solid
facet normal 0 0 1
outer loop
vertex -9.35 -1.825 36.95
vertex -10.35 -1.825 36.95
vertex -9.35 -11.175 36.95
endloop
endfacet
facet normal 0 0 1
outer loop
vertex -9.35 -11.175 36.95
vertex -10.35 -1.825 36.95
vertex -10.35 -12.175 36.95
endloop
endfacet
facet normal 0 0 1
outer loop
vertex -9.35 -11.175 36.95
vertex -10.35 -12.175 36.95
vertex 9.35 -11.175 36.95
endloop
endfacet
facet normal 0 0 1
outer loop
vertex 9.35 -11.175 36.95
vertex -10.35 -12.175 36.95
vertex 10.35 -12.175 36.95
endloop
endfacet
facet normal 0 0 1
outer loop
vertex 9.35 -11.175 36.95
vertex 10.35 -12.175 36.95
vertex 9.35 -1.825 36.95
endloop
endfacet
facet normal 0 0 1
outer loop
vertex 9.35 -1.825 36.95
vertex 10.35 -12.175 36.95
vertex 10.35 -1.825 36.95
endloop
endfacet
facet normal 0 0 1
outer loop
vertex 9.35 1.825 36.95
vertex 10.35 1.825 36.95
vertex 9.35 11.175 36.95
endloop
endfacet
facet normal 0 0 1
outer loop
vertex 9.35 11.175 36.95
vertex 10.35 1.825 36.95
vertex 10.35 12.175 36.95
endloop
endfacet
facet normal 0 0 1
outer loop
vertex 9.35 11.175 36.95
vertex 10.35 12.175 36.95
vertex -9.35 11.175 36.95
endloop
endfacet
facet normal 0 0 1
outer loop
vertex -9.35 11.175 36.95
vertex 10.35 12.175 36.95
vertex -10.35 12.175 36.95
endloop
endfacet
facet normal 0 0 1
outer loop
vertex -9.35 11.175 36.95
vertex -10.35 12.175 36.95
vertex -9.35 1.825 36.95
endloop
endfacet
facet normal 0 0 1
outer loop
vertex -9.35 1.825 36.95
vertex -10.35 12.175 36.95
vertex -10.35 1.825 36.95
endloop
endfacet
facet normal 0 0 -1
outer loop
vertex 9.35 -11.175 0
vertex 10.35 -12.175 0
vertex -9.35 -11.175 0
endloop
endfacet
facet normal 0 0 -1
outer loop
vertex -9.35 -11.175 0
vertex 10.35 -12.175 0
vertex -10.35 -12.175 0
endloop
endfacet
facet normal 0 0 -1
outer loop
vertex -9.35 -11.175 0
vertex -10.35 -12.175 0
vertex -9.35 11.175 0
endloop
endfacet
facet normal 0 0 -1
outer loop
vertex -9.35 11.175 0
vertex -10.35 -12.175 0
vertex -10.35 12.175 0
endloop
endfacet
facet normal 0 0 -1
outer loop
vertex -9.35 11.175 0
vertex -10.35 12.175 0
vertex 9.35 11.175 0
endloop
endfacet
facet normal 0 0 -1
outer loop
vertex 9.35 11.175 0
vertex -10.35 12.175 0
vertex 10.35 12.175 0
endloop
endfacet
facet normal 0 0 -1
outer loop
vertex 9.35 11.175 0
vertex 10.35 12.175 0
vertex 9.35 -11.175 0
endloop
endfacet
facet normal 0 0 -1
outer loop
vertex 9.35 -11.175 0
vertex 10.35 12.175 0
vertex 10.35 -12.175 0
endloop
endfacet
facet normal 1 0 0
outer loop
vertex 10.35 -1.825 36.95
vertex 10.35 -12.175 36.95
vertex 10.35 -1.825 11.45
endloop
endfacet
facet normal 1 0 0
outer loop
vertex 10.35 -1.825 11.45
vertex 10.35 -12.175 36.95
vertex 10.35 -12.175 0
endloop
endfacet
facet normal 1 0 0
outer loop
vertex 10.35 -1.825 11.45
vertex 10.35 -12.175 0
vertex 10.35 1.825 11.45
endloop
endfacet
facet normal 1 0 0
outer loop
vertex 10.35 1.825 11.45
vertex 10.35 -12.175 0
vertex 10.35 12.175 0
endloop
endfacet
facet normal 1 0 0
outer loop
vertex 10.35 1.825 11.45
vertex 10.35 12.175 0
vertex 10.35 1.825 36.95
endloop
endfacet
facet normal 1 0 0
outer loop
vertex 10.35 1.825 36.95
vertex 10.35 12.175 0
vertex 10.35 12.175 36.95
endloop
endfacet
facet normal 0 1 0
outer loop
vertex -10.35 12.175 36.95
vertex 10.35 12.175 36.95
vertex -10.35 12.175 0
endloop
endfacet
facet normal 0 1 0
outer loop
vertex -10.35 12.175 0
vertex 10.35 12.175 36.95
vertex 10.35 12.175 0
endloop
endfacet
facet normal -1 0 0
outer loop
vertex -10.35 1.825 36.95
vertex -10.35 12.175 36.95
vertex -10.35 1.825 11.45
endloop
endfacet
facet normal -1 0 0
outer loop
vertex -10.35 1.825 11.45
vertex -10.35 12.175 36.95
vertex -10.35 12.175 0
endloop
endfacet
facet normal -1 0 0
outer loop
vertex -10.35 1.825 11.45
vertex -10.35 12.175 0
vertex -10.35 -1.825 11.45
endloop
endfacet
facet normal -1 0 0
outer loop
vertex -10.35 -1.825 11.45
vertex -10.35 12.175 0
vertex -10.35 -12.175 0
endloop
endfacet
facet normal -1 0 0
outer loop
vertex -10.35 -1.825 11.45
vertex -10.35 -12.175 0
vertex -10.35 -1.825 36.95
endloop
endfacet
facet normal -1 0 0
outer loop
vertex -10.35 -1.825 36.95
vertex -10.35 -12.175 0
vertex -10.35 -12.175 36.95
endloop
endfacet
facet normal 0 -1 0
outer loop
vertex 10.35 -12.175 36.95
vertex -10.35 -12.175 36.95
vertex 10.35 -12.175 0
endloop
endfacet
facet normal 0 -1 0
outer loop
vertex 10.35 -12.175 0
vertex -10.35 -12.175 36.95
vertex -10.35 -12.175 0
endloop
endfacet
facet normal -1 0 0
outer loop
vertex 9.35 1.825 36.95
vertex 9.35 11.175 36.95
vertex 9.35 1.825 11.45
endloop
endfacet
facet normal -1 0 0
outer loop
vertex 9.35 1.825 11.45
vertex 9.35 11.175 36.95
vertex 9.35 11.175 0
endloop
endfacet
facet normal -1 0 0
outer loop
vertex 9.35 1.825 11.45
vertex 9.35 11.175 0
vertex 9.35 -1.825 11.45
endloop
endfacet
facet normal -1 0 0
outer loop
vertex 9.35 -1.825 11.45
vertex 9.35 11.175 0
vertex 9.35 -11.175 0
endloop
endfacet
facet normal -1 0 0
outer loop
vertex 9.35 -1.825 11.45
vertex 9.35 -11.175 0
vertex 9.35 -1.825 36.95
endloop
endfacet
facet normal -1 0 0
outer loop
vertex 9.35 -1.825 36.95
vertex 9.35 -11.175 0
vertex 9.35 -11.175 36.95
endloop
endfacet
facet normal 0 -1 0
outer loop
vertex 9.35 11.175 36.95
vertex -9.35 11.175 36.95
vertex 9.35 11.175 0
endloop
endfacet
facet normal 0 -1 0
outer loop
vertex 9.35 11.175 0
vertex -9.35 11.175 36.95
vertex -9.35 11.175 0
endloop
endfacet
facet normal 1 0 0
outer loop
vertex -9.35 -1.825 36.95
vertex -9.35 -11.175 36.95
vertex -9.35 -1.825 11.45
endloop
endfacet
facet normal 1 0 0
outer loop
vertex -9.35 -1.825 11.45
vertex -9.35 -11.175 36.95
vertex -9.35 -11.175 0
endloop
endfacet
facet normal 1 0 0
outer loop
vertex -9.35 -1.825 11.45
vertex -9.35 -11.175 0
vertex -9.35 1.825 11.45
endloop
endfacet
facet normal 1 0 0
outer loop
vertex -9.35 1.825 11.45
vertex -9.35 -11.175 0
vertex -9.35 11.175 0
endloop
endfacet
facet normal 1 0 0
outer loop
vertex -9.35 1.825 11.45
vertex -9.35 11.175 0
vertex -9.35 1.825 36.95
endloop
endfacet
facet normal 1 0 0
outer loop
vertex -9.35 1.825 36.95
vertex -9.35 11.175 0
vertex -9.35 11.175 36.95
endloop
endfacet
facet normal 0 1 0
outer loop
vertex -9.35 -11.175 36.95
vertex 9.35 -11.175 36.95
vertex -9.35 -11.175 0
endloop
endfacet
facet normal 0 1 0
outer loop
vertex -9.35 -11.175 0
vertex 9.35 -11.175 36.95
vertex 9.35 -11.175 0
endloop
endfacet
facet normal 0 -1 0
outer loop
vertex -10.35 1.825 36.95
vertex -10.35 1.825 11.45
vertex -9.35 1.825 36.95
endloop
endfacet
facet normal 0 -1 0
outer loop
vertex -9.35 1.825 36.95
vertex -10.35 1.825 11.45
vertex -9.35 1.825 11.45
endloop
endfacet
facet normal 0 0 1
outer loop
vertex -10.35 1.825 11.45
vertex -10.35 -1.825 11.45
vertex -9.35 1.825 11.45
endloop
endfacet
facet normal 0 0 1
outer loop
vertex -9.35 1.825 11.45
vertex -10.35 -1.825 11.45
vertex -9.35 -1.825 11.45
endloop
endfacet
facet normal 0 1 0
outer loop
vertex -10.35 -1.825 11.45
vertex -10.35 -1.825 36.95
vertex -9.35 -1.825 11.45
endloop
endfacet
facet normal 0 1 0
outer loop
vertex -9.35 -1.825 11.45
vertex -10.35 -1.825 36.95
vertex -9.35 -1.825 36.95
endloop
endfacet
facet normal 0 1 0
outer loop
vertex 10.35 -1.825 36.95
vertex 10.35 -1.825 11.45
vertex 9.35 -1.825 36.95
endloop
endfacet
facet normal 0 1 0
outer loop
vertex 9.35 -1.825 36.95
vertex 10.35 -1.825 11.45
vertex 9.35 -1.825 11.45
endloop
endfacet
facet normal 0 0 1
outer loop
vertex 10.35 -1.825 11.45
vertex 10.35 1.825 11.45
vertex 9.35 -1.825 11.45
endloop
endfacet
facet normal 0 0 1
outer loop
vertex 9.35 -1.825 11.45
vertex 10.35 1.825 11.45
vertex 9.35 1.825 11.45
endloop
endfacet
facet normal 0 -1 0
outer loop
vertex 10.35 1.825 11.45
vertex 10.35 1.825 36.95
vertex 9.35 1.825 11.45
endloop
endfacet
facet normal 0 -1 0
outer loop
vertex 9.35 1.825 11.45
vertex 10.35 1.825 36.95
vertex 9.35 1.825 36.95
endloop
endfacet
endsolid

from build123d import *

# Parameters (mm, degrees)
SKETCH3_W           = 20.7
SKETCH3_H           = 24.35
SKETCH3_W_2         = 18.7
SKETCH3_H_2         = 22.35
EXTRUDE_THIN1_DEPTH = 36.95
SKETCH4_W           = 25.5
SKETCH4_H           = 3.65
CUT_EXTRUDE1_DEPTH  = 21.7


with BuildPart() as part:
    # Sketch3 → Extrude-Thin1 (new body)
    with BuildSketch(Plane.XY):
        Rectangle(SKETCH3_W, SKETCH3_H)
        Rectangle(SKETCH3_W_2, SKETCH3_H_2, mode=Mode.SUBTRACT)
    extrude(amount=EXTRUDE_THIN1_DEPTH)

    # Sketch4 → Cut-Extrude1 (cut, through all)
    with BuildSketch(Plane.ZY.offset(10.35)):
        with Locations((24.2, 0)):
            Rectangle(SKETCH4_W, SKETCH4_H)
    extrude(amount=-CUT_EXTRUDE1_DEPTH, mode=Mode.SUBTRACT)


solid = part.part
